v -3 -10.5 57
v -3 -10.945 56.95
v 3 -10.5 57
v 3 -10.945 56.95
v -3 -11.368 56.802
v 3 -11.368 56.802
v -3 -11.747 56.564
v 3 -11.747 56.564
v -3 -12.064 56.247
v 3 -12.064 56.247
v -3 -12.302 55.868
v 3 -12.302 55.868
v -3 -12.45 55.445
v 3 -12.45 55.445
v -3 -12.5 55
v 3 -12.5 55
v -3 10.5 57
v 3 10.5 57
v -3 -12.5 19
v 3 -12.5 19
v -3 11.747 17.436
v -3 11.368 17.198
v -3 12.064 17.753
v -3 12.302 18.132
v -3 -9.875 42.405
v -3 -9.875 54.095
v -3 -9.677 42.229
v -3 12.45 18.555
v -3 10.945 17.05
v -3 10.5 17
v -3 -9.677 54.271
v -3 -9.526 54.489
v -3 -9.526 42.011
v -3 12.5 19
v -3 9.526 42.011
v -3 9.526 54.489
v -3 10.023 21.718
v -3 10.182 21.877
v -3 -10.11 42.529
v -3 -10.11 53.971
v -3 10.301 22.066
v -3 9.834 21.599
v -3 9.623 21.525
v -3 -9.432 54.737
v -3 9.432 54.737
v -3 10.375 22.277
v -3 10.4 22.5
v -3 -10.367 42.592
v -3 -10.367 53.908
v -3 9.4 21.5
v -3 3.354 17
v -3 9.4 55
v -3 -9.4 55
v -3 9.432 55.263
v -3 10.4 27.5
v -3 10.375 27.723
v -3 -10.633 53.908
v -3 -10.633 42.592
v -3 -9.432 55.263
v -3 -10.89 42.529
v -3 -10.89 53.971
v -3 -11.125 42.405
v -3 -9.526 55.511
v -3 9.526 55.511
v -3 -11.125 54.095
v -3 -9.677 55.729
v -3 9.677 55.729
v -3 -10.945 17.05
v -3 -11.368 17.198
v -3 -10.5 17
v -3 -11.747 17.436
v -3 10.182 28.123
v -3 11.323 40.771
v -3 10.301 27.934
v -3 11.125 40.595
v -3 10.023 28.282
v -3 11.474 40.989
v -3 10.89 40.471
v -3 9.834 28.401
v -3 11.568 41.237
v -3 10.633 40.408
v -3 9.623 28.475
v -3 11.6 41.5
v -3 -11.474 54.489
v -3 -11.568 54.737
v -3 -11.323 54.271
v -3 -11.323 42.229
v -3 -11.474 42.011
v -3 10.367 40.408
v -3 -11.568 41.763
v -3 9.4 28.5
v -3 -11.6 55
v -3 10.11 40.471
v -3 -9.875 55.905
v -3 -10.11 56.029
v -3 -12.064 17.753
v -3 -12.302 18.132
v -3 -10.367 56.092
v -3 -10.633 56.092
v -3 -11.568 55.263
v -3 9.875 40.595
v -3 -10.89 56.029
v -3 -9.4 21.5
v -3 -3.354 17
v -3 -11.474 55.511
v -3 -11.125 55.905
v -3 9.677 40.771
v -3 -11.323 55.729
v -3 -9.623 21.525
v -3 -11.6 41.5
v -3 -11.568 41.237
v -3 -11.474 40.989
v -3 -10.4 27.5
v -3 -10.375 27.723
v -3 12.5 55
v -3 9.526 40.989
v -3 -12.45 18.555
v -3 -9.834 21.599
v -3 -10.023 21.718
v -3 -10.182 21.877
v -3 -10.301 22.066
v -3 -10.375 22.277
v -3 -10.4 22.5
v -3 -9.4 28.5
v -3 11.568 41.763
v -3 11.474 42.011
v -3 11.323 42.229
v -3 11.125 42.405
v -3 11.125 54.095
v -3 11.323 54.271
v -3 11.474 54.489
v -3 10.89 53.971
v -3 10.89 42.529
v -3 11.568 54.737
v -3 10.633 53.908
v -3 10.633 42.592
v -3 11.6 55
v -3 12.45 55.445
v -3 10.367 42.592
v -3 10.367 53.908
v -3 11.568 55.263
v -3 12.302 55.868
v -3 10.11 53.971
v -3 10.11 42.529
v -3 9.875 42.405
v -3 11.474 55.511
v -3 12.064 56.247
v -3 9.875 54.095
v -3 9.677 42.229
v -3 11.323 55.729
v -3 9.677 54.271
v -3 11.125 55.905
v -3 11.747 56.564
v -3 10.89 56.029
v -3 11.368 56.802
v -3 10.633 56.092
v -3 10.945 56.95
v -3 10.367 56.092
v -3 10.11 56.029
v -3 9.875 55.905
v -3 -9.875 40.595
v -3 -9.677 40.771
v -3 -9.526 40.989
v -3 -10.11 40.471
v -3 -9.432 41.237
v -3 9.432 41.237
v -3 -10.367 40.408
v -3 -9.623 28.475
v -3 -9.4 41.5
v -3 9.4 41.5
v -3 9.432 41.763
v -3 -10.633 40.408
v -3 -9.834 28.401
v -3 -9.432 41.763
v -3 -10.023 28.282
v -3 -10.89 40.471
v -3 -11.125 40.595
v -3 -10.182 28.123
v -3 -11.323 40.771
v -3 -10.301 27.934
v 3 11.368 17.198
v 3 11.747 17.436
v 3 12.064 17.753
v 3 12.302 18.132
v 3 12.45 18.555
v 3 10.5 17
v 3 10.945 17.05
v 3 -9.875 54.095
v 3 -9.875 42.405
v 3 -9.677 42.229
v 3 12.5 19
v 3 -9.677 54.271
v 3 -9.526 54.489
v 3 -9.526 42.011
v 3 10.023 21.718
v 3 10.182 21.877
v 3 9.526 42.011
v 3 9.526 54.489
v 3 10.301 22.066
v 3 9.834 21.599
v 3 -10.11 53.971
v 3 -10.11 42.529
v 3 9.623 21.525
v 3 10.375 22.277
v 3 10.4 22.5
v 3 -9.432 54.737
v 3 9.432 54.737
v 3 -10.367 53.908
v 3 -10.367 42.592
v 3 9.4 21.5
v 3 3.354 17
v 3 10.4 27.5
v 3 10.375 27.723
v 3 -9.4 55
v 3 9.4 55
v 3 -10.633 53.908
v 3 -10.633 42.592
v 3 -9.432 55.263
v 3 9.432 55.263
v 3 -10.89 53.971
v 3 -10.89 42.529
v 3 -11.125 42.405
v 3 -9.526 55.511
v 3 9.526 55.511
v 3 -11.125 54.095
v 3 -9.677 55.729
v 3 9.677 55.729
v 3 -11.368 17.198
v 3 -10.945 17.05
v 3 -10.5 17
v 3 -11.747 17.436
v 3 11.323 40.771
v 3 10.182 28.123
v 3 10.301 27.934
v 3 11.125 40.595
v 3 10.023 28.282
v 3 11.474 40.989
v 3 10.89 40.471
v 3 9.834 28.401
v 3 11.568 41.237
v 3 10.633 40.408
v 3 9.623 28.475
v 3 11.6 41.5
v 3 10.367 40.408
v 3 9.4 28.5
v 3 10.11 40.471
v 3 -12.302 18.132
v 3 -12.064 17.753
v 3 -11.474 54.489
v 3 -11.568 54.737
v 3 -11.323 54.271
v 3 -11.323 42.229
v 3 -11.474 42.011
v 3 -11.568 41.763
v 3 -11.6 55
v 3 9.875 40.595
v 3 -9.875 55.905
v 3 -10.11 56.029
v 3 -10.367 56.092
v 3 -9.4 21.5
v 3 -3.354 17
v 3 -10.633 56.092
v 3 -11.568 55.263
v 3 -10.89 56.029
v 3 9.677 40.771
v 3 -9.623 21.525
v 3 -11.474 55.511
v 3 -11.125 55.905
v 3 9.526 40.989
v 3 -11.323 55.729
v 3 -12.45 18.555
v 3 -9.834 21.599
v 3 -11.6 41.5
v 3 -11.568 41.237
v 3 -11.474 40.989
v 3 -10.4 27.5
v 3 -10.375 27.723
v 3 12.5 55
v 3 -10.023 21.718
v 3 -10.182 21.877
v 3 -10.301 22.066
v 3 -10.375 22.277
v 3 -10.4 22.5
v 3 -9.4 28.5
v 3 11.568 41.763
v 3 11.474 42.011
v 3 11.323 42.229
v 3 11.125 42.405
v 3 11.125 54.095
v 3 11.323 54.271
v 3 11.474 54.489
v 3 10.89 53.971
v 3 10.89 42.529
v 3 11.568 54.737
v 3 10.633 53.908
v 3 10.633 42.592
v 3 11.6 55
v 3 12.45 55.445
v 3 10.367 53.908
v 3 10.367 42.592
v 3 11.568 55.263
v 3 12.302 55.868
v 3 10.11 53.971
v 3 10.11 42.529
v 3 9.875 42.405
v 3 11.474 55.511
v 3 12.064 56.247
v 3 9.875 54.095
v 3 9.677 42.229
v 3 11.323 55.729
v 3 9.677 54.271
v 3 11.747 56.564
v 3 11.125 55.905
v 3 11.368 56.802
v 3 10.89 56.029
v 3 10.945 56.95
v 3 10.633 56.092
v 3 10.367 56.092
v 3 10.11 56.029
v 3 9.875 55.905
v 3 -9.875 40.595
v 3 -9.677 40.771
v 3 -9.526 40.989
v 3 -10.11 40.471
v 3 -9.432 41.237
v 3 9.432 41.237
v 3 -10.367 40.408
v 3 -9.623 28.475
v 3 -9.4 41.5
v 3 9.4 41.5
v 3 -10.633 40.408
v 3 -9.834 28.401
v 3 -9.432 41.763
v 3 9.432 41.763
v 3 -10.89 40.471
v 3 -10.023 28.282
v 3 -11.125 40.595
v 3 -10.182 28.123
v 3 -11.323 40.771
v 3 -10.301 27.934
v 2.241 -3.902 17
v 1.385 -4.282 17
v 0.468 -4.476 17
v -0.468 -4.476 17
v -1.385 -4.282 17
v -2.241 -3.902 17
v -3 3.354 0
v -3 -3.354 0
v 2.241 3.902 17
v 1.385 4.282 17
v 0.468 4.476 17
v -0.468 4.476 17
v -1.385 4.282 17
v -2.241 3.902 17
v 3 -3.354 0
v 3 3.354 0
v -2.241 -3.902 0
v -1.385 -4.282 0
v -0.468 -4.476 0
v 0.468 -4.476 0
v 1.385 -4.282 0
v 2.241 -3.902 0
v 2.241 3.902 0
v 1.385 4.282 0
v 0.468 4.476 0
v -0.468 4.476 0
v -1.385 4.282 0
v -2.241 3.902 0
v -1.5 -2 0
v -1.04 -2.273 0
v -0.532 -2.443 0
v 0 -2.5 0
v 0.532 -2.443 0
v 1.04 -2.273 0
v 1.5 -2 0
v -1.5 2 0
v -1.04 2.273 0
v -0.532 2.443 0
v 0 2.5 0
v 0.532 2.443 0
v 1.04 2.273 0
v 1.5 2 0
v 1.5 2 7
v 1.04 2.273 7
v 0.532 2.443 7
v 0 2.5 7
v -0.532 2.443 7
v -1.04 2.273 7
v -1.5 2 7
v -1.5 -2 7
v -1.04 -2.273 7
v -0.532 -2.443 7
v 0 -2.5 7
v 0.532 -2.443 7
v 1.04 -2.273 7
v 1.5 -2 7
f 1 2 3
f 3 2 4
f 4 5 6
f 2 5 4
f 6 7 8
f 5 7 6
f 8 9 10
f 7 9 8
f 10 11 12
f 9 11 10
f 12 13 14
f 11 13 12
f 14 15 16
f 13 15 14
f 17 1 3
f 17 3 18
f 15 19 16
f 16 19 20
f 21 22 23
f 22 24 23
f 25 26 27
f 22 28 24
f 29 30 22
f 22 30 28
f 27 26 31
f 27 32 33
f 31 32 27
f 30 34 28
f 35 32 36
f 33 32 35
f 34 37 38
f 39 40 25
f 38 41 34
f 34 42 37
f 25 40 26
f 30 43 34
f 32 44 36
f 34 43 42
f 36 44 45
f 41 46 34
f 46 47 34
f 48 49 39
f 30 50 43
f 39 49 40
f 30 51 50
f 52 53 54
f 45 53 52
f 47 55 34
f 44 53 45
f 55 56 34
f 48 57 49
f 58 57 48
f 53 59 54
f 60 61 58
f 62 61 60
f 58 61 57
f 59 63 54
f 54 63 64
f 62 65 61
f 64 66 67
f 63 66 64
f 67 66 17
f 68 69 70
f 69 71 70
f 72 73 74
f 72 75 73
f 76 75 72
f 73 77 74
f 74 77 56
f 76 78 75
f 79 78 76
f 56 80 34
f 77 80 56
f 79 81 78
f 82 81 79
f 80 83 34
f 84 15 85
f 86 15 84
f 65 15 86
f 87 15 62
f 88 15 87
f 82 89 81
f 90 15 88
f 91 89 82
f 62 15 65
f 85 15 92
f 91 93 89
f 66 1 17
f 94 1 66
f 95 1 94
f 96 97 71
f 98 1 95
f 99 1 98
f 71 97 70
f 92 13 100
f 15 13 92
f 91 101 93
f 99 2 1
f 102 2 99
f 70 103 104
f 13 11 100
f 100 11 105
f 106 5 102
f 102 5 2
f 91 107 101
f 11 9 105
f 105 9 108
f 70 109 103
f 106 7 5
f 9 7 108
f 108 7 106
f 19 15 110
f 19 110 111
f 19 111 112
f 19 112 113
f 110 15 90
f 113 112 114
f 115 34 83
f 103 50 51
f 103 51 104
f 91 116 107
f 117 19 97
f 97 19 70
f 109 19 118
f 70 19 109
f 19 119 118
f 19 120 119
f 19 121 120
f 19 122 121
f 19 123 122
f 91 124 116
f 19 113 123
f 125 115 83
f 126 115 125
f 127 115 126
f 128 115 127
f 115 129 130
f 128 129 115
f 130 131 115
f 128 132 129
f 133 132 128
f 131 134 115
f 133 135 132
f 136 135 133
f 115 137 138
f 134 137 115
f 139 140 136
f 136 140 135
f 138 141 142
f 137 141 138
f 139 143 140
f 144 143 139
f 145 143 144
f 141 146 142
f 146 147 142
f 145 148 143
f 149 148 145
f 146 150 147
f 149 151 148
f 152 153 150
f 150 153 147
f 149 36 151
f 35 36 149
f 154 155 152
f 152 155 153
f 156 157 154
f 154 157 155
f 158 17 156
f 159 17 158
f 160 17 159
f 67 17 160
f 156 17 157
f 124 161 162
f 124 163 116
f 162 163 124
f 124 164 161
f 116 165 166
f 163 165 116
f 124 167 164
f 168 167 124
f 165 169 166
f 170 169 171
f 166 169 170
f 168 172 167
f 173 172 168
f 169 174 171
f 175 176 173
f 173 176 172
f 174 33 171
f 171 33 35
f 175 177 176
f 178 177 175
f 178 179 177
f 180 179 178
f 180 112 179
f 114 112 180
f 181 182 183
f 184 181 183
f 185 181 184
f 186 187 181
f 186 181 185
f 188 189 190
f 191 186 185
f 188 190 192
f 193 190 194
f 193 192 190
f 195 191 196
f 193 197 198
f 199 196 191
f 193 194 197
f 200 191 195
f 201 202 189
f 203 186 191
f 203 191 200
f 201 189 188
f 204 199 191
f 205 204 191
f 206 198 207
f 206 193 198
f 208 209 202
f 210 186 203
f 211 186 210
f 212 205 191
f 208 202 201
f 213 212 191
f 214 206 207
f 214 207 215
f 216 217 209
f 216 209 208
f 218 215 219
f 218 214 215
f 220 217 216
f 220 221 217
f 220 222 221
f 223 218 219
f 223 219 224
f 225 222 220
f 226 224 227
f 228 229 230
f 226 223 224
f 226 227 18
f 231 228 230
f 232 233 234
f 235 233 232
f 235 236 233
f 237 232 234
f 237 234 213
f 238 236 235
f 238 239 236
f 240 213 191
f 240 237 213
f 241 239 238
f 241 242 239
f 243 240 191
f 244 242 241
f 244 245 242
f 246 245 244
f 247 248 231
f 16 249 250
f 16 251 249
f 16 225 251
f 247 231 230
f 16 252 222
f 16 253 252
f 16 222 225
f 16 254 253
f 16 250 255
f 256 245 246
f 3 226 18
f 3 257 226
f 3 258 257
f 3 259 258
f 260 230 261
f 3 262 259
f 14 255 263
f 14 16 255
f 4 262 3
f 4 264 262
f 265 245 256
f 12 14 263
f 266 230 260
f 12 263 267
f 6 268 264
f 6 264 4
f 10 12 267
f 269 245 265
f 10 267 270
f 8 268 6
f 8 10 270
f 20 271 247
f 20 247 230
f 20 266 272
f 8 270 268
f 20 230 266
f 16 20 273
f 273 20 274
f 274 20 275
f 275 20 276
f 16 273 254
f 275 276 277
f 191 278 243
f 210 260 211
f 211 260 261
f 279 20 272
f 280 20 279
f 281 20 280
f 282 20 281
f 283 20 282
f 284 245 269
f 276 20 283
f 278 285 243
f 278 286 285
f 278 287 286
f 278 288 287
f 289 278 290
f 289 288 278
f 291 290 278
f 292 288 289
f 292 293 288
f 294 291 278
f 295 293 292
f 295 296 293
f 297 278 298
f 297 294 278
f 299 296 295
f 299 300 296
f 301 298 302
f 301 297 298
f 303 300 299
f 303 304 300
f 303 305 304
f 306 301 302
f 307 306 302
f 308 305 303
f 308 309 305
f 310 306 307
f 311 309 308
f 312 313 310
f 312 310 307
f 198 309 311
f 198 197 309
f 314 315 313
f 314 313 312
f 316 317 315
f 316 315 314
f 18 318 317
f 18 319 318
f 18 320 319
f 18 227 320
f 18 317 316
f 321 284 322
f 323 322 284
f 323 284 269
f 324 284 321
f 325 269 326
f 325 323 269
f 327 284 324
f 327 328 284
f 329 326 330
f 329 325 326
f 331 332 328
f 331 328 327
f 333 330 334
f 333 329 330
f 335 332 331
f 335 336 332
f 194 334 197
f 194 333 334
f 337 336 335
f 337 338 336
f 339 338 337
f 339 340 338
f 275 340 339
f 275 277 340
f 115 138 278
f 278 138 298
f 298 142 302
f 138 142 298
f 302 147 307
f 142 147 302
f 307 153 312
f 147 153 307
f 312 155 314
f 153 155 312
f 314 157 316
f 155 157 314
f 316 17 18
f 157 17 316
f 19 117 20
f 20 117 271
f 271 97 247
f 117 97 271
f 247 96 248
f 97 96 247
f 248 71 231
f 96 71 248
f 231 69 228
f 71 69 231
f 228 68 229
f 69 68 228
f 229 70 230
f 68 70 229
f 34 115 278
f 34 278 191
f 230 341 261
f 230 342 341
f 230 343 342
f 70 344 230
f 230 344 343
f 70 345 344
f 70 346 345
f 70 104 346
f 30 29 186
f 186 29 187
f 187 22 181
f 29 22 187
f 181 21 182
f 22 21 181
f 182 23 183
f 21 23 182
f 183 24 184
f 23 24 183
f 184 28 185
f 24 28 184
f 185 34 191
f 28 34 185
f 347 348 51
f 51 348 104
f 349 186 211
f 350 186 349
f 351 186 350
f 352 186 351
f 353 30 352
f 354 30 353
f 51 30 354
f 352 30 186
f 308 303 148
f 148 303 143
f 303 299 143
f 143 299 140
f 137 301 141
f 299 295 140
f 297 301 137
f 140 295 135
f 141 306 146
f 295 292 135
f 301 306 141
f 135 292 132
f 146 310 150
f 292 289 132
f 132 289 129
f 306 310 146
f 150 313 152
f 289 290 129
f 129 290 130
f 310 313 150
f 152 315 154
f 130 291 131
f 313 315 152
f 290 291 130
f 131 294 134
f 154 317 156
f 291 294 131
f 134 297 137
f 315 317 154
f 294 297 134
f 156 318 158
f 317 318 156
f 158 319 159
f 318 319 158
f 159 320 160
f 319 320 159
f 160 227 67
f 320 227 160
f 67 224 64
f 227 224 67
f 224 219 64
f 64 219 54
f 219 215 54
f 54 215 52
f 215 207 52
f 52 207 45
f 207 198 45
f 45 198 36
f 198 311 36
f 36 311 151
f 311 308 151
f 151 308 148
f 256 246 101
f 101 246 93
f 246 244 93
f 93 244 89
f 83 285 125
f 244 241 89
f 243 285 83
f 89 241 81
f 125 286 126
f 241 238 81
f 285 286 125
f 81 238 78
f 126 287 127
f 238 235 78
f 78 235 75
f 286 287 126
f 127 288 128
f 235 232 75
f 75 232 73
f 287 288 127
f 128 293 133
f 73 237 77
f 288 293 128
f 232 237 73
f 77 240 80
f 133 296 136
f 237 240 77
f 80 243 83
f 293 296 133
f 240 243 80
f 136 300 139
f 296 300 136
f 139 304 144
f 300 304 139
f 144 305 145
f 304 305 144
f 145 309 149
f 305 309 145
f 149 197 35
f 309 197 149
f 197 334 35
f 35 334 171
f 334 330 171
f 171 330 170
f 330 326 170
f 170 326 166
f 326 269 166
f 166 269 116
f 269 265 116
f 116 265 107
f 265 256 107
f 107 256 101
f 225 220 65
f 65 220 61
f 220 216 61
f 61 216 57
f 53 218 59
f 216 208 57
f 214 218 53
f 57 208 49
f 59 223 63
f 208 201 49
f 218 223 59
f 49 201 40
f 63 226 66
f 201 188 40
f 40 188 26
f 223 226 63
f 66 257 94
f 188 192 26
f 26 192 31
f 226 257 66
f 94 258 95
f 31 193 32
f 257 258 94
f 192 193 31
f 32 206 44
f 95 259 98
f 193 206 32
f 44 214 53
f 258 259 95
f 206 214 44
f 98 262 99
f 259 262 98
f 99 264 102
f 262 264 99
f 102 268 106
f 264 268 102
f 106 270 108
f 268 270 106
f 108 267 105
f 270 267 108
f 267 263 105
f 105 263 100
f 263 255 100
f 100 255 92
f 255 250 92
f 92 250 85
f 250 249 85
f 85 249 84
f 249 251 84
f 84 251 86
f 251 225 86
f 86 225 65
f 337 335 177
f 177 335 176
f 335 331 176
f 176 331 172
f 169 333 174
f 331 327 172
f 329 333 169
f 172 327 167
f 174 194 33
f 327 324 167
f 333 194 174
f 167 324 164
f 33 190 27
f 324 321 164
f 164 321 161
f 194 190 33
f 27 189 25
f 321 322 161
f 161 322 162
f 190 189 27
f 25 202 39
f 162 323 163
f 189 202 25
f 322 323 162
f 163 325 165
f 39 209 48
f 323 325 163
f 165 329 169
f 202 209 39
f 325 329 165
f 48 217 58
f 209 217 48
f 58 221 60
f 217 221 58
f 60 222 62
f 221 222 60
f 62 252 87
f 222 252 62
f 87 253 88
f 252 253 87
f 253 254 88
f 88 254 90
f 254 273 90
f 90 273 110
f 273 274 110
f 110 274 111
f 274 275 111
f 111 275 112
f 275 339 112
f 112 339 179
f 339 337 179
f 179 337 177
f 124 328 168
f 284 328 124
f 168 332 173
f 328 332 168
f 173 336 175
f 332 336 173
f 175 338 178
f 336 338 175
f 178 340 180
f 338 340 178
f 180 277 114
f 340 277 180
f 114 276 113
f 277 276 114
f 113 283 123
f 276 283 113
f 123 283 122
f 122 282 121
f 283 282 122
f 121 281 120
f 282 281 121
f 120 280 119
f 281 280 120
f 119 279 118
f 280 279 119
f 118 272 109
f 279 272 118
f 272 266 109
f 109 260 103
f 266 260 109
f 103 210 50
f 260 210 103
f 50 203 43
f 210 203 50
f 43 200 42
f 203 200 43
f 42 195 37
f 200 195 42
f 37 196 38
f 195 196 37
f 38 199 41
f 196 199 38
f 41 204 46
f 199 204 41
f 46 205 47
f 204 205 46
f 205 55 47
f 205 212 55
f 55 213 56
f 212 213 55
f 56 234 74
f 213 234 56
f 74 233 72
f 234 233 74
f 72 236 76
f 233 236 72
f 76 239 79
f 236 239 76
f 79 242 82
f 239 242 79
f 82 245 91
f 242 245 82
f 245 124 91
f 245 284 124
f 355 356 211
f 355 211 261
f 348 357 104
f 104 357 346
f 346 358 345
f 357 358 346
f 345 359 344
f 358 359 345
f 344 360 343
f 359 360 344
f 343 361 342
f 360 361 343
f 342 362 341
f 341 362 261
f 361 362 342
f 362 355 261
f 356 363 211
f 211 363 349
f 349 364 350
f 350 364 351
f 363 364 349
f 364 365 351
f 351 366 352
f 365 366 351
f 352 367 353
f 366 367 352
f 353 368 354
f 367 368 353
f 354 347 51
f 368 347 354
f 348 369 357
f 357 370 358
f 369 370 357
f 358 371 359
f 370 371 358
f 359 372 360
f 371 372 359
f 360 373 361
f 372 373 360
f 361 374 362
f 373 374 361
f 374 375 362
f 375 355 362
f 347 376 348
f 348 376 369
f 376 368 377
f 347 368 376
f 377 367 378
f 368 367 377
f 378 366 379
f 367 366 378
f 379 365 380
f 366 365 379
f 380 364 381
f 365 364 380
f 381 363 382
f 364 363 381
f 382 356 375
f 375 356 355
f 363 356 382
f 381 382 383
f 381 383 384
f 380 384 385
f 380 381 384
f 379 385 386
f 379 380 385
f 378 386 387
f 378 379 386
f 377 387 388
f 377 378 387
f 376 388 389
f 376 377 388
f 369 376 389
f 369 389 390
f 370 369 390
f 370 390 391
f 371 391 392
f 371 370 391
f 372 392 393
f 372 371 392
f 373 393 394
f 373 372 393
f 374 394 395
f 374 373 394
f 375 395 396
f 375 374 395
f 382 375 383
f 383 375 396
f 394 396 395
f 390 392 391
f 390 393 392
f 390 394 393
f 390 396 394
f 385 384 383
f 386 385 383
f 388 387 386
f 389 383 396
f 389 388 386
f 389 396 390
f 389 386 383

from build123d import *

# Parameters (mm, degrees)
PAD_DEPTH            = 17
POCKET_DEPTH         = 7
PAD001_DEPTH         = 3
PAD001_DEPTH_BACK    = 3
SKETCH003_R          = 1.1
POCKET001_DEPTH      = 5
POCKET001_DEPTH_BACK = -5
POCKET002_DEPTH      = 5
POCKET002_DEPTH_BACK = -5


with BuildPart() as part:
    # Sketch001 → Pad (new body)
    with BuildSketch(Plane.XY):
        with BuildLine():
            Line((-3, 3.354102), (-3, -3.354102))
            ThreePointArc((-3, -3.354102), (0, -4.5), (3, -3.354102))
            Line((3, 3.354102), (3, -3.354102))
            ThreePointArc((3, 3.354102), (0, 4.5), (-3, 3.354102))
        make_face()
    extrude(amount=PAD_DEPTH)

    # Sketch → Pocket (cut)
    with BuildSketch(Plane.XY):
        with BuildLine():
            Line((1.5, 2), (1.5, -2))
            ThreePointArc((-1.5, -2), (0, -2.5), (1.5, -2))
            Line((-1.5, 2), (-1.5, -2))
            ThreePointArc((1.5, 2), (0, 2.5), (-1.5, 2))
        make_face()
    extrude(amount=POCKET_DEPTH, mode=Mode.SUBTRACT)

    # Sketch002 → Pad001 (join, two sides)
    with BuildSketch(Plane.YZ) as pad001_sk:
        with BuildLine():
            Line((-10.5, 17), (10.5, 17))
            ThreePointArc((10.5, 17), (11.914214, 17.585786), (12.5, 19))
            Line((12.5, 55), (12.5, 19))
            ThreePointArc((12.5, 55), (11.914214, 56.414214), (10.5, 57))
            Line((-10.5, 57), (10.5, 57))
            ThreePointArc((-10.5, 57), (-11.914214, 56.414214), (-12.5, 55))
            Line((-12.5, 55), (-12.5, 19))
            ThreePointArc((-12.5, 19), (-11.914214, 17.585786), (-10.5, 17))
        make_face()
    extrude(amount=PAD001_DEPTH)
    extrude(pad001_sk.sketch, amount=-PAD001_DEPTH_BACK)

    # Sketch003 → Pocket001 (cut, two sides)
    with BuildSketch(Plane.YZ) as pocket001_sk:
        with Locations((-10.5, 55)):
            Circle(SKETCH003_R)
        with Locations((10.5, 55)):
            Circle(SKETCH003_R)
        with Locations((10.5, 41.5)):
            Circle(SKETCH003_R)
        with Locations((-10.5, 41.5)):
            Circle(SKETCH003_R)
    extrude(amount=-POCKET001_DEPTH, mode=Mode.SUBTRACT)
    extrude(pocket001_sk.sketch, amount=-POCKET001_DEPTH_BACK, mode=Mode.SUBTRACT)

    # Sketch004 → Pocket002 (cut, two sides)
    with BuildSketch(Plane.YZ) as pocket002_sk:
        with BuildLine():
            Line((-9.4, 28.5), (9.4, 28.5))
            ThreePointArc((10.4, 27.5), (10.107107, 28.207107), (9.4, 28.5))
            Line((10.4, 27.5), (10.4, 22.5))
            ThreePointArc((9.4, 21.5), (10.107107, 21.792893), (10.4, 22.5))
            Line((9.4, 21.5), (-9.4, 21.5))
            ThreePointArc((-10.4, 22.5), (-10.107107, 21.792893), (-9.4, 21.5))
            Line((-10.4, 27.5), (-10.4, 22.5))
            ThreePointArc((-9.4, 28.5), (-10.107107, 28.207107), (-10.4, 27.5))
        make_face()
    extrude(amount=-POCKET002_DEPTH, mode=Mode.SUBTRACT)
    extrude(pocket002_sk.sketch, amount=-POCKET002_DEPTH_BACK, mode=Mode.SUBTRACT)


solid = part.part
